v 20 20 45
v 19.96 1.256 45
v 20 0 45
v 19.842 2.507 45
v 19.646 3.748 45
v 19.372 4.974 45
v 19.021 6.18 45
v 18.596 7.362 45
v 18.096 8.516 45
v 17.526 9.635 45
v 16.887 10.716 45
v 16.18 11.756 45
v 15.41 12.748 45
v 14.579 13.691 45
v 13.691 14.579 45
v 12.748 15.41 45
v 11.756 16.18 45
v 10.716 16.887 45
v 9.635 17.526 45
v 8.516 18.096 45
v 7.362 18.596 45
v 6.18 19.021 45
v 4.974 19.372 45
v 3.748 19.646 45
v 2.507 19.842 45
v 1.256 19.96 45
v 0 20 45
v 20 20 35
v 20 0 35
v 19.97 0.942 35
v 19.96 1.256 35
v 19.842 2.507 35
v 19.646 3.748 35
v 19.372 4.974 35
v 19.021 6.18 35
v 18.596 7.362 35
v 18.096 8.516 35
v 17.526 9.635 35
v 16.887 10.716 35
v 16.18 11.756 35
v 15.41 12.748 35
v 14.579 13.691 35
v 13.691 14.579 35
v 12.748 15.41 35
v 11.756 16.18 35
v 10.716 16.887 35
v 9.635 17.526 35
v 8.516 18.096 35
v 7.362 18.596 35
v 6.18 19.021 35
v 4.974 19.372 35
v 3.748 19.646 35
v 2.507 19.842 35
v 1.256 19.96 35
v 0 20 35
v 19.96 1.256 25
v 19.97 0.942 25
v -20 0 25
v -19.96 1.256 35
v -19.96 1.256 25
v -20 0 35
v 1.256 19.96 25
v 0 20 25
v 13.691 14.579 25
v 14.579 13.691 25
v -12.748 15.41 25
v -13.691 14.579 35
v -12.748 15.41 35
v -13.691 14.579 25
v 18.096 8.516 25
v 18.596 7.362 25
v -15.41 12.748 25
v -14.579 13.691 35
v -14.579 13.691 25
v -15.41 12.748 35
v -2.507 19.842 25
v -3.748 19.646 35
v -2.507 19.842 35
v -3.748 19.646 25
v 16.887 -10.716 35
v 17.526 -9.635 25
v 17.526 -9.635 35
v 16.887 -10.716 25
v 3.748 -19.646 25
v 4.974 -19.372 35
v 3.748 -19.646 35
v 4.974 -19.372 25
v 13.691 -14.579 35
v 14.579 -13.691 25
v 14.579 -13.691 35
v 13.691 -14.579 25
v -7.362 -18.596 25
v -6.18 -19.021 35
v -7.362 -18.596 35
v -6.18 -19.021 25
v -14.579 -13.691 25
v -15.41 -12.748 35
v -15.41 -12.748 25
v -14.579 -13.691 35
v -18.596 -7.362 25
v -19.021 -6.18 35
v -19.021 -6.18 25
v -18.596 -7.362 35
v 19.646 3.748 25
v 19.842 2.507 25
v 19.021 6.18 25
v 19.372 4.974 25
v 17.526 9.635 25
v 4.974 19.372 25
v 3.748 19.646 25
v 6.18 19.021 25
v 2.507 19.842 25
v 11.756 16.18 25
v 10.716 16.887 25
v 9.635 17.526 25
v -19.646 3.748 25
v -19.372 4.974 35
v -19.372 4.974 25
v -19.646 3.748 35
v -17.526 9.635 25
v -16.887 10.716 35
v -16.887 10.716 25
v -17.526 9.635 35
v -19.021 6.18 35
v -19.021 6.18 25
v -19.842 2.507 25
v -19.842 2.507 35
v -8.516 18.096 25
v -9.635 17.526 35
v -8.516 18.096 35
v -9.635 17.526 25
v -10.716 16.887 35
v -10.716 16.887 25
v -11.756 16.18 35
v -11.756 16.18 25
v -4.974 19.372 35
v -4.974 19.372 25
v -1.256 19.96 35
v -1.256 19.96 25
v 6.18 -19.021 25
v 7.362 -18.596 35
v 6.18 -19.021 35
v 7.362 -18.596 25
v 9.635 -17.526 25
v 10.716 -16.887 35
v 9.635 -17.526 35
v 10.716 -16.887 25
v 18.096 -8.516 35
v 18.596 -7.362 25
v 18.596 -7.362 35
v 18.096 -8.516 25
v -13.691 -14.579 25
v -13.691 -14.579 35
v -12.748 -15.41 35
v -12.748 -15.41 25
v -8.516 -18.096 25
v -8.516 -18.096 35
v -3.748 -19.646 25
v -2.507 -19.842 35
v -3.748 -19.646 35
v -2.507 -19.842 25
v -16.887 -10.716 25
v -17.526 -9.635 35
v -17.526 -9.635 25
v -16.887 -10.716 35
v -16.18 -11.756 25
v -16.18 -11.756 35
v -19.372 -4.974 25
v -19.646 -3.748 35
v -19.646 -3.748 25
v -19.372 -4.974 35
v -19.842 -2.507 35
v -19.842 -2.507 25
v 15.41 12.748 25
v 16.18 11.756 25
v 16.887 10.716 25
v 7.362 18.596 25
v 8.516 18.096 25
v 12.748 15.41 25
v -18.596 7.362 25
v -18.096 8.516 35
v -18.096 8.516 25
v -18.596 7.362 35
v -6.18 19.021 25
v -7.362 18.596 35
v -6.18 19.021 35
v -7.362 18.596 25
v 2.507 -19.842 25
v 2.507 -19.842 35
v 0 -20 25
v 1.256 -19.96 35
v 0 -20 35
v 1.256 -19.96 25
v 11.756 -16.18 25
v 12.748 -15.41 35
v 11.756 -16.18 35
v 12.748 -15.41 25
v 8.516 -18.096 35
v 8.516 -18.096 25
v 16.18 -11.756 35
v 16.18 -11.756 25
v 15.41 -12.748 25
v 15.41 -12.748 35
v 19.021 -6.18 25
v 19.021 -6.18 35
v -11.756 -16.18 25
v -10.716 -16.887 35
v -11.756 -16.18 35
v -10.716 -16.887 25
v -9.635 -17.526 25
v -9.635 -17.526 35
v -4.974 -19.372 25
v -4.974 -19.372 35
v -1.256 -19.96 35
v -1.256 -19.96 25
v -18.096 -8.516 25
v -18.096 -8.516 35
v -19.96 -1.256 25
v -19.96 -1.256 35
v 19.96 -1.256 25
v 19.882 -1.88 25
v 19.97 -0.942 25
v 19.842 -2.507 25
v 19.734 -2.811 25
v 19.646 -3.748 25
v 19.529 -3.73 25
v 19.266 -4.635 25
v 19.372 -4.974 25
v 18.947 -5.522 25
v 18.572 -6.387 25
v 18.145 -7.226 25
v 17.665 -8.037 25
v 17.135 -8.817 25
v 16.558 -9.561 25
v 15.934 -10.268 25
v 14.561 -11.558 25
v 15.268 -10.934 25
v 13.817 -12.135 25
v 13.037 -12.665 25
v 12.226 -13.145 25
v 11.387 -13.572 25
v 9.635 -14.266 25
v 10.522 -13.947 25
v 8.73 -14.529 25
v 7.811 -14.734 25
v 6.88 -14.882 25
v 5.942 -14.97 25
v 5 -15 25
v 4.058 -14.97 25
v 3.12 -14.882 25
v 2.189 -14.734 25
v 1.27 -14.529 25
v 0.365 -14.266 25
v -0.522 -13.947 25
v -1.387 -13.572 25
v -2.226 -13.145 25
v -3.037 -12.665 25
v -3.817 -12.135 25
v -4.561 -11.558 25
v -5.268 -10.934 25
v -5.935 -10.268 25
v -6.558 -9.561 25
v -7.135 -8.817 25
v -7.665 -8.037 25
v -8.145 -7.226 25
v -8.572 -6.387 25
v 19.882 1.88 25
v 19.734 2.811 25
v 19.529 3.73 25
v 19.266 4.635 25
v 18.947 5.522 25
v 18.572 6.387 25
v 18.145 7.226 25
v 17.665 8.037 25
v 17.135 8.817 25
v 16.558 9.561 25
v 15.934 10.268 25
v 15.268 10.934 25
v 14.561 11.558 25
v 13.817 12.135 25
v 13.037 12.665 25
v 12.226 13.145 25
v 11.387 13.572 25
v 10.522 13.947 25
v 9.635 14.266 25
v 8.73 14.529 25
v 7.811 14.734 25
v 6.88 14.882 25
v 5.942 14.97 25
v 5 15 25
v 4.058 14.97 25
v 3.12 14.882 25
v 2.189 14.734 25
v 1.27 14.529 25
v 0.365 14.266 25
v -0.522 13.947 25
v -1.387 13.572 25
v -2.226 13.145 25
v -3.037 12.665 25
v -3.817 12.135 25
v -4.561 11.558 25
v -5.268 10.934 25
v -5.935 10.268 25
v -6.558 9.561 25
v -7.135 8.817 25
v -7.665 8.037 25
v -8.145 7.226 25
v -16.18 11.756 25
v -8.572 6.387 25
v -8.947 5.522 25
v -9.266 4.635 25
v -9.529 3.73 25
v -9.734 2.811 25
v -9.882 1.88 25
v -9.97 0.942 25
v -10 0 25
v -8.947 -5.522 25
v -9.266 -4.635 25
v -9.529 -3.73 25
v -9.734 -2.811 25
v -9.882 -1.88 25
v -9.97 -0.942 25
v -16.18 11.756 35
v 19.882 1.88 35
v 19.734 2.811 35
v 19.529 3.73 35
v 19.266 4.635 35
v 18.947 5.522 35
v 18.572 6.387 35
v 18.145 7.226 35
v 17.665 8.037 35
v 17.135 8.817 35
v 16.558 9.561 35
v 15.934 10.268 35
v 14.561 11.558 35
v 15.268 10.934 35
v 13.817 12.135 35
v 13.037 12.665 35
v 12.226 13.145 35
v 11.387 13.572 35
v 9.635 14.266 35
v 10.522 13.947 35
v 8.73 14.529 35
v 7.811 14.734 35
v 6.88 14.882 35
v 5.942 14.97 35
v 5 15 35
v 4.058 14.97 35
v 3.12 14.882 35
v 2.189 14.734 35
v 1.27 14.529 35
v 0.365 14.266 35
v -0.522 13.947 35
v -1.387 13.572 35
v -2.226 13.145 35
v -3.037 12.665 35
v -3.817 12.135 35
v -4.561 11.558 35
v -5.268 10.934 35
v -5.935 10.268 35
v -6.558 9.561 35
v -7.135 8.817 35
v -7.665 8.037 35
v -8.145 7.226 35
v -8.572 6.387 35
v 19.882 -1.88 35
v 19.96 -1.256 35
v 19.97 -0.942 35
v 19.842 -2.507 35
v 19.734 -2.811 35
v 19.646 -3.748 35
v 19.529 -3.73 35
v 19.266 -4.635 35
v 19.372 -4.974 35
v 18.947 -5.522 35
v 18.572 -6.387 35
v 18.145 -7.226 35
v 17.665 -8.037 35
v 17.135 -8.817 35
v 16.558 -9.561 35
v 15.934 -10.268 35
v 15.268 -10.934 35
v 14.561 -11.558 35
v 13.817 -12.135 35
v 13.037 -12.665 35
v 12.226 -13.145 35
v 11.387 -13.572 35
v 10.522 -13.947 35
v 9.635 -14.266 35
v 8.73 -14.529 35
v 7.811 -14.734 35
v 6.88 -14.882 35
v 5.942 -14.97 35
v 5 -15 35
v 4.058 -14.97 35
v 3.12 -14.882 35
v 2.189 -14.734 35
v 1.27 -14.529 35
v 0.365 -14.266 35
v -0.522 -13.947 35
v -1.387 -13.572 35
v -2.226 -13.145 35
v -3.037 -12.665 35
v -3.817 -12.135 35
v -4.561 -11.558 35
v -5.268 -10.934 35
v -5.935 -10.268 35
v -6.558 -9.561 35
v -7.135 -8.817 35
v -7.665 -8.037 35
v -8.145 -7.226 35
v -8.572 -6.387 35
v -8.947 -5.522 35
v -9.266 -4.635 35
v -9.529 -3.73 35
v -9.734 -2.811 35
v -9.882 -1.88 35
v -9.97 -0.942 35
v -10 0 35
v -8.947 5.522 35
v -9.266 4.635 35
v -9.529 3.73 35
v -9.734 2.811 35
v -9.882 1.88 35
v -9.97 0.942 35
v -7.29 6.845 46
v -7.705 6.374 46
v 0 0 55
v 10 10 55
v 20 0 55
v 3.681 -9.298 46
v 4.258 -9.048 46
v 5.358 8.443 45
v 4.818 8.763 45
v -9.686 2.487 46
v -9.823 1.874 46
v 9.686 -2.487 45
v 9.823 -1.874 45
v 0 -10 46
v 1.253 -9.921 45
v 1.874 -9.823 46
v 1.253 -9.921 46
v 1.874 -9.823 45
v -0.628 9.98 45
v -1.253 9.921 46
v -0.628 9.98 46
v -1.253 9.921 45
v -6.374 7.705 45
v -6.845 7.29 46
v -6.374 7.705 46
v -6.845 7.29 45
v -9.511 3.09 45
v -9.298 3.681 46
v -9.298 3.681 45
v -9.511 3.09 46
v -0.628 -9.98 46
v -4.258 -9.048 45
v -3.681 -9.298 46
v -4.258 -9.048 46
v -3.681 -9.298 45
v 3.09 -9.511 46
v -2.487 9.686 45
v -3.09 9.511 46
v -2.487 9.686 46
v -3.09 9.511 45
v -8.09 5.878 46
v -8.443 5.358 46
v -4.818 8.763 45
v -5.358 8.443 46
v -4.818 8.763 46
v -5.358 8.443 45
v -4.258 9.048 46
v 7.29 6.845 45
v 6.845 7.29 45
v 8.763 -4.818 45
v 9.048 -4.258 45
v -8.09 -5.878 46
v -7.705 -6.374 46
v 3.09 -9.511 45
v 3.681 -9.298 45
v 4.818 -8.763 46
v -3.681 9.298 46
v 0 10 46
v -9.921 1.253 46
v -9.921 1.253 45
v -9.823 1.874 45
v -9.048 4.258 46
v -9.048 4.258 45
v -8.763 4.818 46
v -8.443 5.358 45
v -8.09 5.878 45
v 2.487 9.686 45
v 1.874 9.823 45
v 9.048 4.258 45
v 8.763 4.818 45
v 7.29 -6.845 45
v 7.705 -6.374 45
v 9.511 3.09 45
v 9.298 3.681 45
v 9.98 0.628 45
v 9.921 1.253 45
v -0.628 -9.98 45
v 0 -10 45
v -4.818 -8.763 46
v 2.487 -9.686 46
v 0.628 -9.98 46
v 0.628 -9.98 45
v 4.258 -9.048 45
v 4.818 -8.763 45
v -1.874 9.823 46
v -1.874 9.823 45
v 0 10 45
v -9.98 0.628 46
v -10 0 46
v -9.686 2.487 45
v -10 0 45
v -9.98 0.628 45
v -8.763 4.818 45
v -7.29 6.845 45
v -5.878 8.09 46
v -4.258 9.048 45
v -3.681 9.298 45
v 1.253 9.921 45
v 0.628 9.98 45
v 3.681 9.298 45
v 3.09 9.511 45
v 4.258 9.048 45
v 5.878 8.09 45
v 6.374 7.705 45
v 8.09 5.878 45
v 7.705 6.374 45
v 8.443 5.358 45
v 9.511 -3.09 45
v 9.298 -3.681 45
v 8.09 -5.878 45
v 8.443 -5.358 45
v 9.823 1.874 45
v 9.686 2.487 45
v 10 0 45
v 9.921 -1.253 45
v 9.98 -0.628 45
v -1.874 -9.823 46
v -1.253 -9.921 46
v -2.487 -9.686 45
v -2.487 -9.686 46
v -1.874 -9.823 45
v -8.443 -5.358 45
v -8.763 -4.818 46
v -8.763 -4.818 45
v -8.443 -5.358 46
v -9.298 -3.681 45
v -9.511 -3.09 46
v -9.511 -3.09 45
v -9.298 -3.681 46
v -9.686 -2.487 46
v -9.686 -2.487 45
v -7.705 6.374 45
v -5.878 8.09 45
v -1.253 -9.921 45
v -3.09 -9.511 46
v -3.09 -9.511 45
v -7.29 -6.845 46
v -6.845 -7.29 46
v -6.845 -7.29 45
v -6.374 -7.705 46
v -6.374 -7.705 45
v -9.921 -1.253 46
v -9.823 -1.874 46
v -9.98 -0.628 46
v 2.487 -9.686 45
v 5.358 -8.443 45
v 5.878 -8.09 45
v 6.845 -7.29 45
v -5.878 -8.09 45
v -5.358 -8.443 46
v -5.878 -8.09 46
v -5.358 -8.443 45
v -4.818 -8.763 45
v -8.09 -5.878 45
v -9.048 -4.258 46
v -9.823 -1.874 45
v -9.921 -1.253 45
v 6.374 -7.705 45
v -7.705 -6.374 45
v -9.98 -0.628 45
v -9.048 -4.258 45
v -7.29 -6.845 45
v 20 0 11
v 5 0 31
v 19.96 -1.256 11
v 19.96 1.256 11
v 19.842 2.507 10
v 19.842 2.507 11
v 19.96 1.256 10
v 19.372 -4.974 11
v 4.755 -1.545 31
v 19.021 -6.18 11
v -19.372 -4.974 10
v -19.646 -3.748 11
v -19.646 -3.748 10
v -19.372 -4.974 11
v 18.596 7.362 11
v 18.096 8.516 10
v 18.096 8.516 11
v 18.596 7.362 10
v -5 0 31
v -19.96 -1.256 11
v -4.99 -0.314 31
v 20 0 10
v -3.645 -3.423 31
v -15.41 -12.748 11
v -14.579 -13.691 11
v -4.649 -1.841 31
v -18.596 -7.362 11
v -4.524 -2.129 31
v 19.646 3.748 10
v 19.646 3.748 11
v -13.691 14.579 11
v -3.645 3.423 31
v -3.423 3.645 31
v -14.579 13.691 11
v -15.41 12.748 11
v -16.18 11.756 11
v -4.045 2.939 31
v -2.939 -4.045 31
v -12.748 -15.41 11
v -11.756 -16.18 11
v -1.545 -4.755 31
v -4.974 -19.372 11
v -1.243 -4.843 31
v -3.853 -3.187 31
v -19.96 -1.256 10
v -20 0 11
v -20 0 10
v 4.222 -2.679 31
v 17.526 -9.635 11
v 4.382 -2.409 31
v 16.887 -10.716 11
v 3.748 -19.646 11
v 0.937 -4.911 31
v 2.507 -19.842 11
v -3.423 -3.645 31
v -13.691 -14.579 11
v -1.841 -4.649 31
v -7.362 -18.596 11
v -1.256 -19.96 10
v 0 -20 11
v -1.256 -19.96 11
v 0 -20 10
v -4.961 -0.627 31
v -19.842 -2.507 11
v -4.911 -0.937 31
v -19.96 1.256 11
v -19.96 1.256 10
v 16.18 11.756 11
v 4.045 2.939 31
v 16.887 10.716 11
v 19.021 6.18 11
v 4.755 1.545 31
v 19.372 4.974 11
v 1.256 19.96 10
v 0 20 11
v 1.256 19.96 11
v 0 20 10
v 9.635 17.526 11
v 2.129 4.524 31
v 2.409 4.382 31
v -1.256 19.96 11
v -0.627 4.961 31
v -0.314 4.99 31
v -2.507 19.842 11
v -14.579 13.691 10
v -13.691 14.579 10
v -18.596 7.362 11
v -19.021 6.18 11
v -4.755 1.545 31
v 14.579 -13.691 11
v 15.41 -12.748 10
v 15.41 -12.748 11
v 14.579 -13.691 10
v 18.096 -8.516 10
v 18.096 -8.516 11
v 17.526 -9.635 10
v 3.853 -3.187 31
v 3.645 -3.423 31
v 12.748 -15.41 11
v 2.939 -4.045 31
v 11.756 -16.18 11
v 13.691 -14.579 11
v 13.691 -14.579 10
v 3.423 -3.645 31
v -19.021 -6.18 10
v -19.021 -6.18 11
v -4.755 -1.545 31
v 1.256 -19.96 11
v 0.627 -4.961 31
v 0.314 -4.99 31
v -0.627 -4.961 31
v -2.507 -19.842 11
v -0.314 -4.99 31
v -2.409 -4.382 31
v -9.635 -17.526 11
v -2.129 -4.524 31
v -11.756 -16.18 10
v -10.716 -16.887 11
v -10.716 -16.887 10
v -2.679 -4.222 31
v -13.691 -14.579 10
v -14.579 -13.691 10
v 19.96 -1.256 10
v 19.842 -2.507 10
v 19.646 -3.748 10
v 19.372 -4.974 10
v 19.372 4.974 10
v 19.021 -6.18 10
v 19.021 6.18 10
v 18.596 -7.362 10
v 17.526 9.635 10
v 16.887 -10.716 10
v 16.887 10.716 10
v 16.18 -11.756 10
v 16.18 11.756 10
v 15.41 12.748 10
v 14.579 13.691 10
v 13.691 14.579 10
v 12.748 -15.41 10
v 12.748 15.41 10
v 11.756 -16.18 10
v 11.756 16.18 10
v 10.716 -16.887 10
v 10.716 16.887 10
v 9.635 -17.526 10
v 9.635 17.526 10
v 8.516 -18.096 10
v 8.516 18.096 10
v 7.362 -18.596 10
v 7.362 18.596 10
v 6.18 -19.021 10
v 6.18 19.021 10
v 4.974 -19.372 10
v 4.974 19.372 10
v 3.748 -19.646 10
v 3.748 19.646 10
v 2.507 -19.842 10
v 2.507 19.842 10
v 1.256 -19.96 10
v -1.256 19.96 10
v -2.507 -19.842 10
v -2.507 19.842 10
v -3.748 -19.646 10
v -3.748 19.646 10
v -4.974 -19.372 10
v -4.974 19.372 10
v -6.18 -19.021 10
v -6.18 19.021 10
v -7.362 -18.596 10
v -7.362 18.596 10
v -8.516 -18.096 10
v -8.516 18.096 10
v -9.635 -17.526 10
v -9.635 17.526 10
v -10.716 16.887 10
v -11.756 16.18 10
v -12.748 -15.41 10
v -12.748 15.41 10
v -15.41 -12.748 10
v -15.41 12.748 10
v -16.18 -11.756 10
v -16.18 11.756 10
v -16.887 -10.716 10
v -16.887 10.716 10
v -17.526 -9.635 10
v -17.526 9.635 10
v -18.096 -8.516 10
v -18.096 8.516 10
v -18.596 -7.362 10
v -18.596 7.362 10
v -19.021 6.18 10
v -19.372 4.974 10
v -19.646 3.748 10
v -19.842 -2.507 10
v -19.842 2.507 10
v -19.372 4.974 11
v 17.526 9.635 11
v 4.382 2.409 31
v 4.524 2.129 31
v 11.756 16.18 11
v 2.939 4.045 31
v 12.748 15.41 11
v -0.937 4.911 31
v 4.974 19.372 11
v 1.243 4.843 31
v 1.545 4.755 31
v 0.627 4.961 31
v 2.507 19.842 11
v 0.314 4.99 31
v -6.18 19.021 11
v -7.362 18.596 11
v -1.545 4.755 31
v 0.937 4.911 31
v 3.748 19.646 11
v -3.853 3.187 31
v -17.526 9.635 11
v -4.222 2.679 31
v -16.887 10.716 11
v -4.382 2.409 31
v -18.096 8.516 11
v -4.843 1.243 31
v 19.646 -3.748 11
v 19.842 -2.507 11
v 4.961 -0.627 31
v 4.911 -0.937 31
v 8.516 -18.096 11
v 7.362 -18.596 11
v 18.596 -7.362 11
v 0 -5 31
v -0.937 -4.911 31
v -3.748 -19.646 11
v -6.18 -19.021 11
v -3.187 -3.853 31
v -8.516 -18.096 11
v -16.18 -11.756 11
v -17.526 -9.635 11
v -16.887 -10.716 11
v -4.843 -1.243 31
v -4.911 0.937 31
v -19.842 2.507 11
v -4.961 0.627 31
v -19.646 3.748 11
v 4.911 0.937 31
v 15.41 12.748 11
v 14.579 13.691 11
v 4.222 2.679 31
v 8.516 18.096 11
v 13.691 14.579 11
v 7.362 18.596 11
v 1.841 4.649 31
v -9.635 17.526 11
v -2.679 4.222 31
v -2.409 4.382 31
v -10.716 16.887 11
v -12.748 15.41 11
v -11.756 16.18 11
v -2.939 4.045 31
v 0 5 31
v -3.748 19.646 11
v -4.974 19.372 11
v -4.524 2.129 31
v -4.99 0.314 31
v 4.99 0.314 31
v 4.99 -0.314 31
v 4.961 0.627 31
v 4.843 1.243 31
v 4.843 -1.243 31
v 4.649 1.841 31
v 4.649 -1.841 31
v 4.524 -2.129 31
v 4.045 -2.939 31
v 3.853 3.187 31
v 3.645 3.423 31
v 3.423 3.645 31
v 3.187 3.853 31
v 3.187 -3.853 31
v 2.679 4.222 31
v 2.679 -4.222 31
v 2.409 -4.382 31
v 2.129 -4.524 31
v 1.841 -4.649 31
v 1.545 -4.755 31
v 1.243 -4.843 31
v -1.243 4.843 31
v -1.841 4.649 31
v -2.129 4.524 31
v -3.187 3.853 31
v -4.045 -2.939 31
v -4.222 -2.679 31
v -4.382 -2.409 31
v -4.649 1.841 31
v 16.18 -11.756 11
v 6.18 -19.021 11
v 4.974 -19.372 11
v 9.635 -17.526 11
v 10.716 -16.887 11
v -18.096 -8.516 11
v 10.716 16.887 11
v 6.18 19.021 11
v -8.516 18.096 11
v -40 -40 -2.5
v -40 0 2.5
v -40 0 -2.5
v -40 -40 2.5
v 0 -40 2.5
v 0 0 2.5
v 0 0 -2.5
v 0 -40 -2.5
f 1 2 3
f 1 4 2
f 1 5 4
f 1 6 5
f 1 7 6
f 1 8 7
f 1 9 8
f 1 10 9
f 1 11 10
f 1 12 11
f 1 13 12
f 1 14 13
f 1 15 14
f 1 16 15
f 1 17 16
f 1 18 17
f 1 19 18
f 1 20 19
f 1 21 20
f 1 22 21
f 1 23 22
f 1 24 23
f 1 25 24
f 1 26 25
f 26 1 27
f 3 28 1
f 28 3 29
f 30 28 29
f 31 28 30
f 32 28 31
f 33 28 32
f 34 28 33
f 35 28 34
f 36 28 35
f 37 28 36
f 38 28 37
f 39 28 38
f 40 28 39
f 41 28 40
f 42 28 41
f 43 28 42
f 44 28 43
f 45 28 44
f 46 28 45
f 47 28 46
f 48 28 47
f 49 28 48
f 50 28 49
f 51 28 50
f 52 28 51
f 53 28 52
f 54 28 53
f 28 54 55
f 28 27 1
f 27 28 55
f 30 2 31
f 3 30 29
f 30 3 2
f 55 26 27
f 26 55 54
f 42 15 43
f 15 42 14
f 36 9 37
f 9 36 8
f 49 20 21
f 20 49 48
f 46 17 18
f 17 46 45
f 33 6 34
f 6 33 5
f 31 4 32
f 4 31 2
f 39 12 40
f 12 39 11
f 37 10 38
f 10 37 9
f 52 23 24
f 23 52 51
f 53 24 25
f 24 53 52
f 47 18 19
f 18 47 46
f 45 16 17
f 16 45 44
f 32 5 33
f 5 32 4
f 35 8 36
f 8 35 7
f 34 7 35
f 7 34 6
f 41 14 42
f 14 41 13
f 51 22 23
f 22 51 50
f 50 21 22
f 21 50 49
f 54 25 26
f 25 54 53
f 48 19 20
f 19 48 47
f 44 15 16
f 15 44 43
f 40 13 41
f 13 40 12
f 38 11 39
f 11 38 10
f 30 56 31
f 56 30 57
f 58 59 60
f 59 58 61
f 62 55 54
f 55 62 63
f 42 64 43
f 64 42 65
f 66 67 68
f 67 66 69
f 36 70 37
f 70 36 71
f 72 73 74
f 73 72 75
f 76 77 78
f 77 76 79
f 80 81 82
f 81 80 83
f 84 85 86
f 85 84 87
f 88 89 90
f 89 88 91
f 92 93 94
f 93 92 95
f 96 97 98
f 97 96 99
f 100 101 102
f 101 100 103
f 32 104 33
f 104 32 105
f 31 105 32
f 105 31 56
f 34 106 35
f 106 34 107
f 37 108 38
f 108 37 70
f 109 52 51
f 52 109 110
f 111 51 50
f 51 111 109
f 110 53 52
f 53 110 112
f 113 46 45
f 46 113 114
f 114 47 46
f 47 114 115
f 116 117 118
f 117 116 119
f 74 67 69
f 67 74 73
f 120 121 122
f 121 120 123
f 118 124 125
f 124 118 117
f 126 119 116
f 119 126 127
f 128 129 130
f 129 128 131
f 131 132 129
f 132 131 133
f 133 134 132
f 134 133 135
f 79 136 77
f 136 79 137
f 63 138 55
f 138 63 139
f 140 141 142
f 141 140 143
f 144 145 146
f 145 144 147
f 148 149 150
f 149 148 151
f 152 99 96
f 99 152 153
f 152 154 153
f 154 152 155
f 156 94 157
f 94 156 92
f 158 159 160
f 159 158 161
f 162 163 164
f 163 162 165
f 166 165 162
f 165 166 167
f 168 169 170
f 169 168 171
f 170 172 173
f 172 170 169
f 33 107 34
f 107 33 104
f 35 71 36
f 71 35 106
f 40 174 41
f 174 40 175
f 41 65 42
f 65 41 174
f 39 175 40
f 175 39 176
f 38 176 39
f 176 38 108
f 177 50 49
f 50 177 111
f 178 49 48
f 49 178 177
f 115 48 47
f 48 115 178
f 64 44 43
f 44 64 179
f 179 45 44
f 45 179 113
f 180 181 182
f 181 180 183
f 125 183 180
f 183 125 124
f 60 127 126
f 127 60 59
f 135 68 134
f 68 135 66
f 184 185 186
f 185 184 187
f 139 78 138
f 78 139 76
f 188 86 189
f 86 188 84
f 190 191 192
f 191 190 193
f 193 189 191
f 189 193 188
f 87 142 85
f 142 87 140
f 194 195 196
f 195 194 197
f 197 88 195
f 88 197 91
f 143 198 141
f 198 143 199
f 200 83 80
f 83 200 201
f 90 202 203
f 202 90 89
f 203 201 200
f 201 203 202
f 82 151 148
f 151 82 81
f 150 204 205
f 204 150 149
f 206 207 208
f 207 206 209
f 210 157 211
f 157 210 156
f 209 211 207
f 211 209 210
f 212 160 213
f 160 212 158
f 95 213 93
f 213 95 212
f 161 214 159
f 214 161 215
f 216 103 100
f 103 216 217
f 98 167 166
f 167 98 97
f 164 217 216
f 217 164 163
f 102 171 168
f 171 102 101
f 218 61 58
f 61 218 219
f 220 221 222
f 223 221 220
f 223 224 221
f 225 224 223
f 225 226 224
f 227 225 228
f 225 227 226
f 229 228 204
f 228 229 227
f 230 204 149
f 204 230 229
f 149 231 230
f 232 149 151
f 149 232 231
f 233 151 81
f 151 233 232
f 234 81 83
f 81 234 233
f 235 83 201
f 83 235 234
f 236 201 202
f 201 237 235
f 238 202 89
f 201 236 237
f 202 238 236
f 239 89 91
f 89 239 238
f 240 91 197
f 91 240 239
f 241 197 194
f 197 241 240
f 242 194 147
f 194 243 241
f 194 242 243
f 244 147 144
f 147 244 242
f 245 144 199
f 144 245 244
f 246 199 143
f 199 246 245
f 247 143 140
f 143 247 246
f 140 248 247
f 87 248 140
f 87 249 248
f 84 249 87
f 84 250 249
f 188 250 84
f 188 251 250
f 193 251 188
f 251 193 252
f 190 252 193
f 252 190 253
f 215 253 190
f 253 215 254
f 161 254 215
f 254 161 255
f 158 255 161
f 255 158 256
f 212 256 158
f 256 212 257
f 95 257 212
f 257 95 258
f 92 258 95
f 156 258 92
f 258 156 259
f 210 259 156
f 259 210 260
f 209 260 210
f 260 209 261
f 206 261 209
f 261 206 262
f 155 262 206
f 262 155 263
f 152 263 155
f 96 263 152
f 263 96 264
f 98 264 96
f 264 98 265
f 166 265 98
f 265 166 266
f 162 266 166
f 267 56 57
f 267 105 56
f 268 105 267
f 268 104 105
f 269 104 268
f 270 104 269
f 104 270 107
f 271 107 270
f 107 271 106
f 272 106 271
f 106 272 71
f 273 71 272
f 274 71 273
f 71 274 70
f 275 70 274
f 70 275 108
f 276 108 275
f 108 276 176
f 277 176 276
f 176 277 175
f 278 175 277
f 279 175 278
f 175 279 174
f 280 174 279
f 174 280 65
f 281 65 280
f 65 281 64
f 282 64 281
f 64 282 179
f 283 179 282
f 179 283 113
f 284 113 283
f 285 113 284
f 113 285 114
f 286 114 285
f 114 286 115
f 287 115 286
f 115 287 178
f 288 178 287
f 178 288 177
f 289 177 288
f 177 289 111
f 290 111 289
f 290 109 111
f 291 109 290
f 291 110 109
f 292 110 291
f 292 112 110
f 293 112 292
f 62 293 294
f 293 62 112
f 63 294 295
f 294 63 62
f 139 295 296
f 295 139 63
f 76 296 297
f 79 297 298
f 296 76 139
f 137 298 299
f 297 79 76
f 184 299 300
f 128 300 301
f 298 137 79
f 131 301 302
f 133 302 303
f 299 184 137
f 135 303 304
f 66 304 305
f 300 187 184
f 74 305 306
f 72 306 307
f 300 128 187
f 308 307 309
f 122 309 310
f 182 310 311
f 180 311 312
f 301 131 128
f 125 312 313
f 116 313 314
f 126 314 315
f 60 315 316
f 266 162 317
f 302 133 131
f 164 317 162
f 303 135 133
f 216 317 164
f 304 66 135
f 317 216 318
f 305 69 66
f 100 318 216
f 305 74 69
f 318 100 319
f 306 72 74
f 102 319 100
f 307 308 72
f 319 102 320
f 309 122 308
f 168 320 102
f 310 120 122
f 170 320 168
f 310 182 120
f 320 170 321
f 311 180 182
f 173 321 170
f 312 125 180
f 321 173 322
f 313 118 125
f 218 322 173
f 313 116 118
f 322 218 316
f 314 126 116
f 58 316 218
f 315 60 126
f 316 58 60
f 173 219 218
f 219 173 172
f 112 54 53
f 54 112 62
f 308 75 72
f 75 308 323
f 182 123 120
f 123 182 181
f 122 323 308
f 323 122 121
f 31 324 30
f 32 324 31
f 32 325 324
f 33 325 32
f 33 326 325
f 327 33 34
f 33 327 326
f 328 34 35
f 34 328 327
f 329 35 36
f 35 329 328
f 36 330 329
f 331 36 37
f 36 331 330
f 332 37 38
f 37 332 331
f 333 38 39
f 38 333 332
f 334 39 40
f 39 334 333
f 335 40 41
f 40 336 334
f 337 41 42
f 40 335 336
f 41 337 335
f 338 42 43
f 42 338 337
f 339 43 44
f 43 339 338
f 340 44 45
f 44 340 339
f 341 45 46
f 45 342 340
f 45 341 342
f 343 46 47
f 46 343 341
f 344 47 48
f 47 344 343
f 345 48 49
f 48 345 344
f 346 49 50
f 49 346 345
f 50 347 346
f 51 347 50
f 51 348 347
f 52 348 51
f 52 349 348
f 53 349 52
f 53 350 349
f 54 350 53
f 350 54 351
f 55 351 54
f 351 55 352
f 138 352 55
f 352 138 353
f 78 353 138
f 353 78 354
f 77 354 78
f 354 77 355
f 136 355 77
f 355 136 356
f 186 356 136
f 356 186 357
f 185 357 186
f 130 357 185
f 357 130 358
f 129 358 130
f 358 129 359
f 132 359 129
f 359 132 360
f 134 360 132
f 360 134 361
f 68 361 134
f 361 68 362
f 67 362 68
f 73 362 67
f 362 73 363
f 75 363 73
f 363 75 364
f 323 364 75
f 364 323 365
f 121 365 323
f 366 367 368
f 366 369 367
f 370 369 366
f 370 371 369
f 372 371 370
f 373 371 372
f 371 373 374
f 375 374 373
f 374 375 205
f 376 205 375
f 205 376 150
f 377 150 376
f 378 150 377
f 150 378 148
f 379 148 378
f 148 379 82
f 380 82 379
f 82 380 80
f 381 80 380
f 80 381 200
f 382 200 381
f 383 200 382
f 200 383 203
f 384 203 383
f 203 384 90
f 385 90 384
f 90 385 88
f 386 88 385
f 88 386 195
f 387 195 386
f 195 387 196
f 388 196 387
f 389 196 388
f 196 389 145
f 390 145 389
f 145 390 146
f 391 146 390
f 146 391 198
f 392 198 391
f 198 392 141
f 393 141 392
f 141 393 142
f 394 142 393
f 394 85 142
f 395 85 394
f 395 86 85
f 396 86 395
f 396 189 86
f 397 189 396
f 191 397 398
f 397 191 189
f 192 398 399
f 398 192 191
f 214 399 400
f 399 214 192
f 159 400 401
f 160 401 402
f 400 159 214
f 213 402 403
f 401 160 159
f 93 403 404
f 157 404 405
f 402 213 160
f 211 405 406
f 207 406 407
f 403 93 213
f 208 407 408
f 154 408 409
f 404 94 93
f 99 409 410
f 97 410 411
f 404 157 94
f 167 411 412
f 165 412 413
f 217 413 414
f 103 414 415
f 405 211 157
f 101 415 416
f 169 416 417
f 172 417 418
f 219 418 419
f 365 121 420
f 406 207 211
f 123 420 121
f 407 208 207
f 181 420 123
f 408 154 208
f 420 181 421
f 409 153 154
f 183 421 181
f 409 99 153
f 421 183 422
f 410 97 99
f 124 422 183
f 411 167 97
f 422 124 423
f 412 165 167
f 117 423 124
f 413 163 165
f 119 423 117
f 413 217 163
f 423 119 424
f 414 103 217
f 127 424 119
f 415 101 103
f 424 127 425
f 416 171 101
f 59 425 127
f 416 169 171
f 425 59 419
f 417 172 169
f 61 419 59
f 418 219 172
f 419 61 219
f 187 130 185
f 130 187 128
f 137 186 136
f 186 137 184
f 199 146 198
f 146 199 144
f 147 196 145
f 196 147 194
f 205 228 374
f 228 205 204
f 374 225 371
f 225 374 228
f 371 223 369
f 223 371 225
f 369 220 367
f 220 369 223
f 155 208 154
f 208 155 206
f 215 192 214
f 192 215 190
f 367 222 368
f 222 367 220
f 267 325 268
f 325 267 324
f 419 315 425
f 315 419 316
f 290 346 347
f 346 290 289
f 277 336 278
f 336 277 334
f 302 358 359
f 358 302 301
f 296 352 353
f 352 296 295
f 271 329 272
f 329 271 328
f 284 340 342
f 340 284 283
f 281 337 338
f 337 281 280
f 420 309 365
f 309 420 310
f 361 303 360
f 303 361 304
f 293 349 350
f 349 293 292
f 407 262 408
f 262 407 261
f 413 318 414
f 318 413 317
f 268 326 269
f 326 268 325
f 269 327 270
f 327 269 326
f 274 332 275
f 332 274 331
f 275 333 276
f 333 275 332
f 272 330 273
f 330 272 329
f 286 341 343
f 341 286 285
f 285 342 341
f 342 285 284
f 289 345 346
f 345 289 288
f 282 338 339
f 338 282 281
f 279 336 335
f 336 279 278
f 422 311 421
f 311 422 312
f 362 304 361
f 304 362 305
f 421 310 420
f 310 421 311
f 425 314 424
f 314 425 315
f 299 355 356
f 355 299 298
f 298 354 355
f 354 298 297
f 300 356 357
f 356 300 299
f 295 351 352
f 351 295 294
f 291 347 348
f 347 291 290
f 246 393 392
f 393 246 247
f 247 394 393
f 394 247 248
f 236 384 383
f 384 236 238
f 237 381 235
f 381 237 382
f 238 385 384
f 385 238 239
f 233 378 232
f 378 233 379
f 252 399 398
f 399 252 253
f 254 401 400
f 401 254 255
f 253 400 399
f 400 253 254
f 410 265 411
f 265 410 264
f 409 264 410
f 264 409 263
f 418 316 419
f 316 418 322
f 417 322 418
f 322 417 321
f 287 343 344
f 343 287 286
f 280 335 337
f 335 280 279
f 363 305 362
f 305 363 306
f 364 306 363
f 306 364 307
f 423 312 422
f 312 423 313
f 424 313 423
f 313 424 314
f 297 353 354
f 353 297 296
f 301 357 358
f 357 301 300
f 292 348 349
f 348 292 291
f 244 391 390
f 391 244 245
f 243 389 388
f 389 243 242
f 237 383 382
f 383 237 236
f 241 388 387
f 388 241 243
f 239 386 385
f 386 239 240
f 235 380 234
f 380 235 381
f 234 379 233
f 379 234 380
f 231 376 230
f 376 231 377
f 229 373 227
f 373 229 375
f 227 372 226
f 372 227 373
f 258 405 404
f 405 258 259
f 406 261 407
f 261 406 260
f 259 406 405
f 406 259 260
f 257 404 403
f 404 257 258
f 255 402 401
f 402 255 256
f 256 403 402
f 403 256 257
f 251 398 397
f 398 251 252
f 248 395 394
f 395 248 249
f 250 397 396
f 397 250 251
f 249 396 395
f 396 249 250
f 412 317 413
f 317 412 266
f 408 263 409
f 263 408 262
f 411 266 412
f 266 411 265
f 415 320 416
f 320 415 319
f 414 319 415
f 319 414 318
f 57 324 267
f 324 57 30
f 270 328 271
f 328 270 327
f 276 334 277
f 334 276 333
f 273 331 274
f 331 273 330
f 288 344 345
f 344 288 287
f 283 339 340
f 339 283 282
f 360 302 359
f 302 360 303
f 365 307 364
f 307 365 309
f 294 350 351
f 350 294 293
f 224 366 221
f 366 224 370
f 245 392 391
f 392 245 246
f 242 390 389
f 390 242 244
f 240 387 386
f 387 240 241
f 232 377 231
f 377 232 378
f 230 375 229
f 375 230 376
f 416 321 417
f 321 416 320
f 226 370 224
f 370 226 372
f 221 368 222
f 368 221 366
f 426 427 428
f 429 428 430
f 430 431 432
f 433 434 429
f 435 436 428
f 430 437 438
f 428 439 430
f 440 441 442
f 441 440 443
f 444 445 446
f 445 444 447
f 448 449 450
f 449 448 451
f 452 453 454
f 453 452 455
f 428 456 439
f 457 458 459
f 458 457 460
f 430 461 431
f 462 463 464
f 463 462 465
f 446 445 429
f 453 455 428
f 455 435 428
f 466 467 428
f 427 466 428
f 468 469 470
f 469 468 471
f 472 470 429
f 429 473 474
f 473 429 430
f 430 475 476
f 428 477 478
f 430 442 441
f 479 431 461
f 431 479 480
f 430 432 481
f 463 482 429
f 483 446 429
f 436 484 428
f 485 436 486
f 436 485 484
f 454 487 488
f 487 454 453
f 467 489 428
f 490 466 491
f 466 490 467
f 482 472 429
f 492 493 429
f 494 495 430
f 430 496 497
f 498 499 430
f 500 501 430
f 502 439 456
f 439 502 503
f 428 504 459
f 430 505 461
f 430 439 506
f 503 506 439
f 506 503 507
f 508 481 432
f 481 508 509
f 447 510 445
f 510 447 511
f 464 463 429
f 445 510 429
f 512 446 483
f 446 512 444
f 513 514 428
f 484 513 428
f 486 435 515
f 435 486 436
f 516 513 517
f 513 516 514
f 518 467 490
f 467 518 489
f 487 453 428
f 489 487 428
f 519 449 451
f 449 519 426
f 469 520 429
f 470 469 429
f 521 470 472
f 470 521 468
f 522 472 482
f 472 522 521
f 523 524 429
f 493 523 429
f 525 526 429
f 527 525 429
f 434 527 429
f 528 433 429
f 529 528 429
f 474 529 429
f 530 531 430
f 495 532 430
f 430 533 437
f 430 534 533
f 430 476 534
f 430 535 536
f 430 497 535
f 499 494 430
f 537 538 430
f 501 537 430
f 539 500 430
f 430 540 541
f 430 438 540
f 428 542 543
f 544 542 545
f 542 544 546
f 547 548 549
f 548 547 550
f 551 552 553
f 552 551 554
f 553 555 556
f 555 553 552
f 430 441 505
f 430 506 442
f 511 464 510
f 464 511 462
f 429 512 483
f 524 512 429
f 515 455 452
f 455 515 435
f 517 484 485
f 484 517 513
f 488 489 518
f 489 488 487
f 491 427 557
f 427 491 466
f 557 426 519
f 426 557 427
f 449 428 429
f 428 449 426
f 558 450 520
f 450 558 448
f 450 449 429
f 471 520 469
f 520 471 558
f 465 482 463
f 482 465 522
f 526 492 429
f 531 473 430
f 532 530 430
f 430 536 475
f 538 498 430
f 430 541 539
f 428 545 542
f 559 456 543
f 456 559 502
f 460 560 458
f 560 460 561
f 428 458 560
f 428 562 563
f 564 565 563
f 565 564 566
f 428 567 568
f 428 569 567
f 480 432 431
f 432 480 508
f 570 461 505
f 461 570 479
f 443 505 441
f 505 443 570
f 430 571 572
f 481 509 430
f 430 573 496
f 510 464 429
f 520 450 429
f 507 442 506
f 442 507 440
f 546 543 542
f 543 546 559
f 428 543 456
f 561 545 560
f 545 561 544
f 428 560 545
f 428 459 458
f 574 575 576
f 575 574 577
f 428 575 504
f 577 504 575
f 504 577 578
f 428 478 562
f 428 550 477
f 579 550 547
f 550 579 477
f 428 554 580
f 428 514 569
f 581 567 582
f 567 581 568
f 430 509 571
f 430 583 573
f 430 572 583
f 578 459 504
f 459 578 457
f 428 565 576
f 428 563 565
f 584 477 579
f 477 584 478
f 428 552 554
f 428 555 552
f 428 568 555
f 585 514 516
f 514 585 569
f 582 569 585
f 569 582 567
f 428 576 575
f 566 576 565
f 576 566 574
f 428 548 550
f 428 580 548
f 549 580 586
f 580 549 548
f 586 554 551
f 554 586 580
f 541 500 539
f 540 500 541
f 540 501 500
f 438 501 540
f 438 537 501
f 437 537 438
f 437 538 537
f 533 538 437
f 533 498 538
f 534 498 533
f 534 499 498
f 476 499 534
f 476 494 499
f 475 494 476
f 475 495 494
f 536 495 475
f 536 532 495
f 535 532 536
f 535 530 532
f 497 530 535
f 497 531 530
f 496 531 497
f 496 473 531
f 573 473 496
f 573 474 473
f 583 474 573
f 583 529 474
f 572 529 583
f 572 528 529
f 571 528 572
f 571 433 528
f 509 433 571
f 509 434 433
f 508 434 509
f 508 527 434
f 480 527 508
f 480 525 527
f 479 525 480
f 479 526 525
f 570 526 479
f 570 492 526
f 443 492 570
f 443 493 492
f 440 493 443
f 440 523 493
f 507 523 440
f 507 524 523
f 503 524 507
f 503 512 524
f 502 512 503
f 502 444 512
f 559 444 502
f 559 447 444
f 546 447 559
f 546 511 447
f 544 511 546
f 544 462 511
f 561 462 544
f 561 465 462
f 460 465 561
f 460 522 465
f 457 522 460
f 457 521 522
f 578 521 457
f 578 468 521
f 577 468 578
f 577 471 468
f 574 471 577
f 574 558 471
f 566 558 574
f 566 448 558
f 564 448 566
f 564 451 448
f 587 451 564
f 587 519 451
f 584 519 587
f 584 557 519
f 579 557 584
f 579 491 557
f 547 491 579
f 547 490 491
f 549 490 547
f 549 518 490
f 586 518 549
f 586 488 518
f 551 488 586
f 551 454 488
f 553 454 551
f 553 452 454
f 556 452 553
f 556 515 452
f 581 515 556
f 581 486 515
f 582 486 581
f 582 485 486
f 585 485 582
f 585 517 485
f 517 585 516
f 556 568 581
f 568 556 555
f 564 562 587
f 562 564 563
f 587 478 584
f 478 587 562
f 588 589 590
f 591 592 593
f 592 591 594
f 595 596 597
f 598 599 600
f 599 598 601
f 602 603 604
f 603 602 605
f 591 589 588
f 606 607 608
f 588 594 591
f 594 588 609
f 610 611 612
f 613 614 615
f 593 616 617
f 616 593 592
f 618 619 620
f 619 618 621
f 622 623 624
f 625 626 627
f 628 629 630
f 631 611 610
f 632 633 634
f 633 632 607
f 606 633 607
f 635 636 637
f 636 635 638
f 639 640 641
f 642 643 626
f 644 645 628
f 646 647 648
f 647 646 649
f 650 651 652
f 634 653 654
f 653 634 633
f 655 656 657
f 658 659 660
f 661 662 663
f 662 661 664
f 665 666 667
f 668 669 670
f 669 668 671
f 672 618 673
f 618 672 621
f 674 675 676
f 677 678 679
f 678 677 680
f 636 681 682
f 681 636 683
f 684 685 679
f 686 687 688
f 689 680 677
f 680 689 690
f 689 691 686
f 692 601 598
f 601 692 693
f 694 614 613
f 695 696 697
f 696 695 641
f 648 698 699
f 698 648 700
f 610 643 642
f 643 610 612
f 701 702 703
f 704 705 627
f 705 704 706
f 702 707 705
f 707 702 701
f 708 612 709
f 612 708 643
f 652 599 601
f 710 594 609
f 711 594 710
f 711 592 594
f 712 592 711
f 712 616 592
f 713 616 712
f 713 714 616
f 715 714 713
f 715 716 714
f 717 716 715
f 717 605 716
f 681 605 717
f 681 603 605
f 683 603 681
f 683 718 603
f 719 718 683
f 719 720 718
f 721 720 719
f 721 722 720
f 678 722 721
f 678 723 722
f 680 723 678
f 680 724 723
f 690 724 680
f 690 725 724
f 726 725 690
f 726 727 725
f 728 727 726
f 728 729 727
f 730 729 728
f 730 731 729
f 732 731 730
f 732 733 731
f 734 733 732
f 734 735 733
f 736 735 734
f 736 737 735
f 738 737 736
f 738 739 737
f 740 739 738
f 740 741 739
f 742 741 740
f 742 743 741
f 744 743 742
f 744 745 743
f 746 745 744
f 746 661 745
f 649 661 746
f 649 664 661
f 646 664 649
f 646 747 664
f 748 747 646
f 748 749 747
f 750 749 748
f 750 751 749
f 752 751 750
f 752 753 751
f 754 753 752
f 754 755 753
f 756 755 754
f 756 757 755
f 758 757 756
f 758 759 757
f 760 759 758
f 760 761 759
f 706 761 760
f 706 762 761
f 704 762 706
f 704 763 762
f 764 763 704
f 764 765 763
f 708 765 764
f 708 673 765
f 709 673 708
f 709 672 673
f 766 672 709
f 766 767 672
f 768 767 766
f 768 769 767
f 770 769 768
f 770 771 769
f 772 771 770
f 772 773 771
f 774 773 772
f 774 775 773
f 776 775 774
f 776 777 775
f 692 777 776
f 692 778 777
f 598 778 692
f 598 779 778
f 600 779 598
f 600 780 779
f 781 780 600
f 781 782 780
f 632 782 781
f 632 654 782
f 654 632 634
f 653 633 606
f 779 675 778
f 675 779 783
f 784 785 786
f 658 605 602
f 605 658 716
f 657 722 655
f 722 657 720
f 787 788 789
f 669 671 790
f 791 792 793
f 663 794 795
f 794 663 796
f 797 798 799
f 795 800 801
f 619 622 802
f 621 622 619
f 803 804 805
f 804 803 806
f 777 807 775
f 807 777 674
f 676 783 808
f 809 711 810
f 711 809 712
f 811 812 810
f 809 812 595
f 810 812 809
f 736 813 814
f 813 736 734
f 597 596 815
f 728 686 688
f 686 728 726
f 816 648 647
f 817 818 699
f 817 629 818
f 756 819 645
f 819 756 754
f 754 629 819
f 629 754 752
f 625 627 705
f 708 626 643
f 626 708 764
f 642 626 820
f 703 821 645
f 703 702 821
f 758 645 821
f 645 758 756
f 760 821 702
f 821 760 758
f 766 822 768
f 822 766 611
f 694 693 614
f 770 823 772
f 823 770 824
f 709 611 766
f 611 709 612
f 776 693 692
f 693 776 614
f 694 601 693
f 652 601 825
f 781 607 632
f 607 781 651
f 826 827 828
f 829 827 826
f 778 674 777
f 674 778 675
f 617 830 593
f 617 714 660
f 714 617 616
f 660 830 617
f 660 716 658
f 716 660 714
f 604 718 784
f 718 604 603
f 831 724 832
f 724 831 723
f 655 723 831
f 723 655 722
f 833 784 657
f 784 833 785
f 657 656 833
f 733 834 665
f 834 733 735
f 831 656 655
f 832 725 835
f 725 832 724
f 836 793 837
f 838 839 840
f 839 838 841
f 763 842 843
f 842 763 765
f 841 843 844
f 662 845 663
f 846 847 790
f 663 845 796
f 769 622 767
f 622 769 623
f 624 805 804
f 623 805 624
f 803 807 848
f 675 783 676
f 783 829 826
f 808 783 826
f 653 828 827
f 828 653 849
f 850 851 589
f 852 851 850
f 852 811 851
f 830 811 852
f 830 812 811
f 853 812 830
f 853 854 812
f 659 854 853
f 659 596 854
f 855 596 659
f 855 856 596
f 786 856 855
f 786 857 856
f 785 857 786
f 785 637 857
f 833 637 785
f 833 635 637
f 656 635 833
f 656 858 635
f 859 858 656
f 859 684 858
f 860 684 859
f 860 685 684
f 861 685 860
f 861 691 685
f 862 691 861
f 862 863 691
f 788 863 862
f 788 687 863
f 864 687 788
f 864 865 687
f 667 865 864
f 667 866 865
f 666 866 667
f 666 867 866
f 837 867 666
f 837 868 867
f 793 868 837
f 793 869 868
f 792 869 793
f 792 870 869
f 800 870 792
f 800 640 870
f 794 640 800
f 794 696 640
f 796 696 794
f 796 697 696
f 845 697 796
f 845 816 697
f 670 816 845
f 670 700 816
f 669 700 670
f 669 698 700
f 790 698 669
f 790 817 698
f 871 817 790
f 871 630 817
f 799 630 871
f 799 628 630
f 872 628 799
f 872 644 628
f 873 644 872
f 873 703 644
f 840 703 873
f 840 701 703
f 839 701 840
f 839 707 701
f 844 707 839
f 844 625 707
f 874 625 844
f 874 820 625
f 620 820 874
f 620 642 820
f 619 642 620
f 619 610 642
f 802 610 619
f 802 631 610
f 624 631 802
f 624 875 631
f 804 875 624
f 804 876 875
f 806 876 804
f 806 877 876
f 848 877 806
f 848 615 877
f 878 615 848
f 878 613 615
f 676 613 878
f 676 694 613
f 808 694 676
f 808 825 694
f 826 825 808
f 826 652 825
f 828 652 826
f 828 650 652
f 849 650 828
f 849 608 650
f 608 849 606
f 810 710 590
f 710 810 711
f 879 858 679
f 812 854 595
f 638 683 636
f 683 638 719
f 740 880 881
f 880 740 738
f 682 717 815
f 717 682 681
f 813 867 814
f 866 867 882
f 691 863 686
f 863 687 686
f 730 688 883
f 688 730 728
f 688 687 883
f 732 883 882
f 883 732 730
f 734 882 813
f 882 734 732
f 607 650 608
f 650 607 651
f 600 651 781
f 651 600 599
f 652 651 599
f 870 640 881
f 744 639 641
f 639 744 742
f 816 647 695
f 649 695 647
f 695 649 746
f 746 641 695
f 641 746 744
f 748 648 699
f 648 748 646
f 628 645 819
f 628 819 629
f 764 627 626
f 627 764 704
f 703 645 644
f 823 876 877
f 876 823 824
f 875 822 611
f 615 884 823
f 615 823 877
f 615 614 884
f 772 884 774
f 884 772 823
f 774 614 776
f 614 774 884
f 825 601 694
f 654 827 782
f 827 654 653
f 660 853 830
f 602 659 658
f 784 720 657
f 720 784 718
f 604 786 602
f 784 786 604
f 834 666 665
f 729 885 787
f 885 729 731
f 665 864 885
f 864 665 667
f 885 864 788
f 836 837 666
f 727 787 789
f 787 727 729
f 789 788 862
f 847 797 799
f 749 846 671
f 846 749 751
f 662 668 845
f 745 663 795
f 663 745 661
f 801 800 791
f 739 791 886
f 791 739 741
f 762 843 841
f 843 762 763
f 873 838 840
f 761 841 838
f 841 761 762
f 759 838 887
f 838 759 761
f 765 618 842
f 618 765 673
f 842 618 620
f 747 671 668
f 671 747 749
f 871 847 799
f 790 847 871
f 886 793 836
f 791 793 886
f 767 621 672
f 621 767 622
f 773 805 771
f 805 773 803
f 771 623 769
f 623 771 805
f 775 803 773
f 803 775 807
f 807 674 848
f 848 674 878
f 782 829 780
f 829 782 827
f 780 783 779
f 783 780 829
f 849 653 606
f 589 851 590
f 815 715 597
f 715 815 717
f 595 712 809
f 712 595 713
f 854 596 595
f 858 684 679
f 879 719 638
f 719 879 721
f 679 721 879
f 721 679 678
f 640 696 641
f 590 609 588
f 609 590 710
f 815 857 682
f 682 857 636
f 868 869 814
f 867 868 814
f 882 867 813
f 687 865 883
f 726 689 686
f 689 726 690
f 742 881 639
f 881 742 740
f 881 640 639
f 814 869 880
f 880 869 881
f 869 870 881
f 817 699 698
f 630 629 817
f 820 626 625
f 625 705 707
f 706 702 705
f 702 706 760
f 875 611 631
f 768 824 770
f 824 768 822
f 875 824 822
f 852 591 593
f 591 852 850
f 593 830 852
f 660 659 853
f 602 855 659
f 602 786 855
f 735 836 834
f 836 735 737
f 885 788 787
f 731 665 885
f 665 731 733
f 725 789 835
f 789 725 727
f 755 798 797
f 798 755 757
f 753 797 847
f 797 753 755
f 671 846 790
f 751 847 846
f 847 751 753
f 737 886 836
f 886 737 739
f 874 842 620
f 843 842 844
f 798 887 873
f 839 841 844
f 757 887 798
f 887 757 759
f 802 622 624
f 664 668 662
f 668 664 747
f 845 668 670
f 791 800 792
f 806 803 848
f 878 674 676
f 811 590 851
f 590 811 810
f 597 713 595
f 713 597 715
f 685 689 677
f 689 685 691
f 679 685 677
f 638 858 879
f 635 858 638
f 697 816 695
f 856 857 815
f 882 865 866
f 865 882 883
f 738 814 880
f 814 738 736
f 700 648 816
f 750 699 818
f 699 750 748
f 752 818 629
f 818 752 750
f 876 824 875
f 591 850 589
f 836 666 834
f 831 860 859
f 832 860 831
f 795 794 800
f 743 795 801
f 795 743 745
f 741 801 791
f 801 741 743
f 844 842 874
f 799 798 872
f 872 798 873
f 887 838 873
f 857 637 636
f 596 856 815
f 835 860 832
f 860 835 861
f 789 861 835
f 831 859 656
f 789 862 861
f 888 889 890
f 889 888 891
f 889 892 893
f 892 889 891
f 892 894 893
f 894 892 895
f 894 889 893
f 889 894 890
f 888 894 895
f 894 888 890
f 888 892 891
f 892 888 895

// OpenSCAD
// Parameters
$fn = 100; // smoothness

// Component 1: Curved Top Wedge Block
module curved_top_wedge_block() {
    difference() {
        // Base wedge
        polyhedron(
            points=[
                [0,0,0], [20,0,0], [10,10,0], // base triangle
                [0,0,10], [20,0,10], [10,10,15] // top curved triangle
            ],
            faces=[
                [0,1,2], [3,4,5],
                [0,1,4,3], [1,2,5,4], [2,0,3,5]
            ]
        );
    }
}

// Component 2: Triangular Prism with Curved Base
module triangular_prism_with_curved_base() {
    hull() {
        translate([0,0,0]) cylinder(r=10, h=1);
        translate([0,0,10]) polyhedron(
            points=[[0,0,0],[20,0,0],[10,10,0]],
            faces=[[0,1,2]]
        );
    }
}

// Component 3: Quarter Cylinder Block
module quarter_cylinder_block() {
    rotate([0,0,0])
    difference() {
        cube([20,20,10]);
        translate([0,0,0])
            rotate([0,0,0])
            cylinder(r=20, h=10, center=false, $fn=100);
    }
}

// Component 4: Curved Rectangular Wall
module curved_rectangular_wall() {
    difference() {
        translate([0,0,0])
            cylinder(r=20, h=10, center=false, $fn=100);
        translate([5,0,-1])
            cylinder(r=15, h=12, center=false, $fn=100);
    }
}

// Component 5: Tapered Curved Wedge
module tapered_curved_wedge() {
    hull() {
        translate([0,0,0]) cylinder(r=20, h=1);
        translate([0,0,20]) cylinder(r=5, h=1);
    }
}

// Component 6: Flat Rectangular Base Block
module flat_rectangular_base_block() {
    cube([40,40,5], center=true);
}

// Assembly
module assembly() {
    translate([0,0,60]) curved_top_wedge_block();
    translate([0,0,45]) triangular_prism_with_curved_base();
    translate([0,0,35]) quarter_cylinder_block();
    translate([0,0,25]) curved_rectangular_wall();
    translate([0,0,10]) tapered_curved_wedge();
    translate([-20,-20,0]) flat_rectangular_base_block();
}

assembly();
